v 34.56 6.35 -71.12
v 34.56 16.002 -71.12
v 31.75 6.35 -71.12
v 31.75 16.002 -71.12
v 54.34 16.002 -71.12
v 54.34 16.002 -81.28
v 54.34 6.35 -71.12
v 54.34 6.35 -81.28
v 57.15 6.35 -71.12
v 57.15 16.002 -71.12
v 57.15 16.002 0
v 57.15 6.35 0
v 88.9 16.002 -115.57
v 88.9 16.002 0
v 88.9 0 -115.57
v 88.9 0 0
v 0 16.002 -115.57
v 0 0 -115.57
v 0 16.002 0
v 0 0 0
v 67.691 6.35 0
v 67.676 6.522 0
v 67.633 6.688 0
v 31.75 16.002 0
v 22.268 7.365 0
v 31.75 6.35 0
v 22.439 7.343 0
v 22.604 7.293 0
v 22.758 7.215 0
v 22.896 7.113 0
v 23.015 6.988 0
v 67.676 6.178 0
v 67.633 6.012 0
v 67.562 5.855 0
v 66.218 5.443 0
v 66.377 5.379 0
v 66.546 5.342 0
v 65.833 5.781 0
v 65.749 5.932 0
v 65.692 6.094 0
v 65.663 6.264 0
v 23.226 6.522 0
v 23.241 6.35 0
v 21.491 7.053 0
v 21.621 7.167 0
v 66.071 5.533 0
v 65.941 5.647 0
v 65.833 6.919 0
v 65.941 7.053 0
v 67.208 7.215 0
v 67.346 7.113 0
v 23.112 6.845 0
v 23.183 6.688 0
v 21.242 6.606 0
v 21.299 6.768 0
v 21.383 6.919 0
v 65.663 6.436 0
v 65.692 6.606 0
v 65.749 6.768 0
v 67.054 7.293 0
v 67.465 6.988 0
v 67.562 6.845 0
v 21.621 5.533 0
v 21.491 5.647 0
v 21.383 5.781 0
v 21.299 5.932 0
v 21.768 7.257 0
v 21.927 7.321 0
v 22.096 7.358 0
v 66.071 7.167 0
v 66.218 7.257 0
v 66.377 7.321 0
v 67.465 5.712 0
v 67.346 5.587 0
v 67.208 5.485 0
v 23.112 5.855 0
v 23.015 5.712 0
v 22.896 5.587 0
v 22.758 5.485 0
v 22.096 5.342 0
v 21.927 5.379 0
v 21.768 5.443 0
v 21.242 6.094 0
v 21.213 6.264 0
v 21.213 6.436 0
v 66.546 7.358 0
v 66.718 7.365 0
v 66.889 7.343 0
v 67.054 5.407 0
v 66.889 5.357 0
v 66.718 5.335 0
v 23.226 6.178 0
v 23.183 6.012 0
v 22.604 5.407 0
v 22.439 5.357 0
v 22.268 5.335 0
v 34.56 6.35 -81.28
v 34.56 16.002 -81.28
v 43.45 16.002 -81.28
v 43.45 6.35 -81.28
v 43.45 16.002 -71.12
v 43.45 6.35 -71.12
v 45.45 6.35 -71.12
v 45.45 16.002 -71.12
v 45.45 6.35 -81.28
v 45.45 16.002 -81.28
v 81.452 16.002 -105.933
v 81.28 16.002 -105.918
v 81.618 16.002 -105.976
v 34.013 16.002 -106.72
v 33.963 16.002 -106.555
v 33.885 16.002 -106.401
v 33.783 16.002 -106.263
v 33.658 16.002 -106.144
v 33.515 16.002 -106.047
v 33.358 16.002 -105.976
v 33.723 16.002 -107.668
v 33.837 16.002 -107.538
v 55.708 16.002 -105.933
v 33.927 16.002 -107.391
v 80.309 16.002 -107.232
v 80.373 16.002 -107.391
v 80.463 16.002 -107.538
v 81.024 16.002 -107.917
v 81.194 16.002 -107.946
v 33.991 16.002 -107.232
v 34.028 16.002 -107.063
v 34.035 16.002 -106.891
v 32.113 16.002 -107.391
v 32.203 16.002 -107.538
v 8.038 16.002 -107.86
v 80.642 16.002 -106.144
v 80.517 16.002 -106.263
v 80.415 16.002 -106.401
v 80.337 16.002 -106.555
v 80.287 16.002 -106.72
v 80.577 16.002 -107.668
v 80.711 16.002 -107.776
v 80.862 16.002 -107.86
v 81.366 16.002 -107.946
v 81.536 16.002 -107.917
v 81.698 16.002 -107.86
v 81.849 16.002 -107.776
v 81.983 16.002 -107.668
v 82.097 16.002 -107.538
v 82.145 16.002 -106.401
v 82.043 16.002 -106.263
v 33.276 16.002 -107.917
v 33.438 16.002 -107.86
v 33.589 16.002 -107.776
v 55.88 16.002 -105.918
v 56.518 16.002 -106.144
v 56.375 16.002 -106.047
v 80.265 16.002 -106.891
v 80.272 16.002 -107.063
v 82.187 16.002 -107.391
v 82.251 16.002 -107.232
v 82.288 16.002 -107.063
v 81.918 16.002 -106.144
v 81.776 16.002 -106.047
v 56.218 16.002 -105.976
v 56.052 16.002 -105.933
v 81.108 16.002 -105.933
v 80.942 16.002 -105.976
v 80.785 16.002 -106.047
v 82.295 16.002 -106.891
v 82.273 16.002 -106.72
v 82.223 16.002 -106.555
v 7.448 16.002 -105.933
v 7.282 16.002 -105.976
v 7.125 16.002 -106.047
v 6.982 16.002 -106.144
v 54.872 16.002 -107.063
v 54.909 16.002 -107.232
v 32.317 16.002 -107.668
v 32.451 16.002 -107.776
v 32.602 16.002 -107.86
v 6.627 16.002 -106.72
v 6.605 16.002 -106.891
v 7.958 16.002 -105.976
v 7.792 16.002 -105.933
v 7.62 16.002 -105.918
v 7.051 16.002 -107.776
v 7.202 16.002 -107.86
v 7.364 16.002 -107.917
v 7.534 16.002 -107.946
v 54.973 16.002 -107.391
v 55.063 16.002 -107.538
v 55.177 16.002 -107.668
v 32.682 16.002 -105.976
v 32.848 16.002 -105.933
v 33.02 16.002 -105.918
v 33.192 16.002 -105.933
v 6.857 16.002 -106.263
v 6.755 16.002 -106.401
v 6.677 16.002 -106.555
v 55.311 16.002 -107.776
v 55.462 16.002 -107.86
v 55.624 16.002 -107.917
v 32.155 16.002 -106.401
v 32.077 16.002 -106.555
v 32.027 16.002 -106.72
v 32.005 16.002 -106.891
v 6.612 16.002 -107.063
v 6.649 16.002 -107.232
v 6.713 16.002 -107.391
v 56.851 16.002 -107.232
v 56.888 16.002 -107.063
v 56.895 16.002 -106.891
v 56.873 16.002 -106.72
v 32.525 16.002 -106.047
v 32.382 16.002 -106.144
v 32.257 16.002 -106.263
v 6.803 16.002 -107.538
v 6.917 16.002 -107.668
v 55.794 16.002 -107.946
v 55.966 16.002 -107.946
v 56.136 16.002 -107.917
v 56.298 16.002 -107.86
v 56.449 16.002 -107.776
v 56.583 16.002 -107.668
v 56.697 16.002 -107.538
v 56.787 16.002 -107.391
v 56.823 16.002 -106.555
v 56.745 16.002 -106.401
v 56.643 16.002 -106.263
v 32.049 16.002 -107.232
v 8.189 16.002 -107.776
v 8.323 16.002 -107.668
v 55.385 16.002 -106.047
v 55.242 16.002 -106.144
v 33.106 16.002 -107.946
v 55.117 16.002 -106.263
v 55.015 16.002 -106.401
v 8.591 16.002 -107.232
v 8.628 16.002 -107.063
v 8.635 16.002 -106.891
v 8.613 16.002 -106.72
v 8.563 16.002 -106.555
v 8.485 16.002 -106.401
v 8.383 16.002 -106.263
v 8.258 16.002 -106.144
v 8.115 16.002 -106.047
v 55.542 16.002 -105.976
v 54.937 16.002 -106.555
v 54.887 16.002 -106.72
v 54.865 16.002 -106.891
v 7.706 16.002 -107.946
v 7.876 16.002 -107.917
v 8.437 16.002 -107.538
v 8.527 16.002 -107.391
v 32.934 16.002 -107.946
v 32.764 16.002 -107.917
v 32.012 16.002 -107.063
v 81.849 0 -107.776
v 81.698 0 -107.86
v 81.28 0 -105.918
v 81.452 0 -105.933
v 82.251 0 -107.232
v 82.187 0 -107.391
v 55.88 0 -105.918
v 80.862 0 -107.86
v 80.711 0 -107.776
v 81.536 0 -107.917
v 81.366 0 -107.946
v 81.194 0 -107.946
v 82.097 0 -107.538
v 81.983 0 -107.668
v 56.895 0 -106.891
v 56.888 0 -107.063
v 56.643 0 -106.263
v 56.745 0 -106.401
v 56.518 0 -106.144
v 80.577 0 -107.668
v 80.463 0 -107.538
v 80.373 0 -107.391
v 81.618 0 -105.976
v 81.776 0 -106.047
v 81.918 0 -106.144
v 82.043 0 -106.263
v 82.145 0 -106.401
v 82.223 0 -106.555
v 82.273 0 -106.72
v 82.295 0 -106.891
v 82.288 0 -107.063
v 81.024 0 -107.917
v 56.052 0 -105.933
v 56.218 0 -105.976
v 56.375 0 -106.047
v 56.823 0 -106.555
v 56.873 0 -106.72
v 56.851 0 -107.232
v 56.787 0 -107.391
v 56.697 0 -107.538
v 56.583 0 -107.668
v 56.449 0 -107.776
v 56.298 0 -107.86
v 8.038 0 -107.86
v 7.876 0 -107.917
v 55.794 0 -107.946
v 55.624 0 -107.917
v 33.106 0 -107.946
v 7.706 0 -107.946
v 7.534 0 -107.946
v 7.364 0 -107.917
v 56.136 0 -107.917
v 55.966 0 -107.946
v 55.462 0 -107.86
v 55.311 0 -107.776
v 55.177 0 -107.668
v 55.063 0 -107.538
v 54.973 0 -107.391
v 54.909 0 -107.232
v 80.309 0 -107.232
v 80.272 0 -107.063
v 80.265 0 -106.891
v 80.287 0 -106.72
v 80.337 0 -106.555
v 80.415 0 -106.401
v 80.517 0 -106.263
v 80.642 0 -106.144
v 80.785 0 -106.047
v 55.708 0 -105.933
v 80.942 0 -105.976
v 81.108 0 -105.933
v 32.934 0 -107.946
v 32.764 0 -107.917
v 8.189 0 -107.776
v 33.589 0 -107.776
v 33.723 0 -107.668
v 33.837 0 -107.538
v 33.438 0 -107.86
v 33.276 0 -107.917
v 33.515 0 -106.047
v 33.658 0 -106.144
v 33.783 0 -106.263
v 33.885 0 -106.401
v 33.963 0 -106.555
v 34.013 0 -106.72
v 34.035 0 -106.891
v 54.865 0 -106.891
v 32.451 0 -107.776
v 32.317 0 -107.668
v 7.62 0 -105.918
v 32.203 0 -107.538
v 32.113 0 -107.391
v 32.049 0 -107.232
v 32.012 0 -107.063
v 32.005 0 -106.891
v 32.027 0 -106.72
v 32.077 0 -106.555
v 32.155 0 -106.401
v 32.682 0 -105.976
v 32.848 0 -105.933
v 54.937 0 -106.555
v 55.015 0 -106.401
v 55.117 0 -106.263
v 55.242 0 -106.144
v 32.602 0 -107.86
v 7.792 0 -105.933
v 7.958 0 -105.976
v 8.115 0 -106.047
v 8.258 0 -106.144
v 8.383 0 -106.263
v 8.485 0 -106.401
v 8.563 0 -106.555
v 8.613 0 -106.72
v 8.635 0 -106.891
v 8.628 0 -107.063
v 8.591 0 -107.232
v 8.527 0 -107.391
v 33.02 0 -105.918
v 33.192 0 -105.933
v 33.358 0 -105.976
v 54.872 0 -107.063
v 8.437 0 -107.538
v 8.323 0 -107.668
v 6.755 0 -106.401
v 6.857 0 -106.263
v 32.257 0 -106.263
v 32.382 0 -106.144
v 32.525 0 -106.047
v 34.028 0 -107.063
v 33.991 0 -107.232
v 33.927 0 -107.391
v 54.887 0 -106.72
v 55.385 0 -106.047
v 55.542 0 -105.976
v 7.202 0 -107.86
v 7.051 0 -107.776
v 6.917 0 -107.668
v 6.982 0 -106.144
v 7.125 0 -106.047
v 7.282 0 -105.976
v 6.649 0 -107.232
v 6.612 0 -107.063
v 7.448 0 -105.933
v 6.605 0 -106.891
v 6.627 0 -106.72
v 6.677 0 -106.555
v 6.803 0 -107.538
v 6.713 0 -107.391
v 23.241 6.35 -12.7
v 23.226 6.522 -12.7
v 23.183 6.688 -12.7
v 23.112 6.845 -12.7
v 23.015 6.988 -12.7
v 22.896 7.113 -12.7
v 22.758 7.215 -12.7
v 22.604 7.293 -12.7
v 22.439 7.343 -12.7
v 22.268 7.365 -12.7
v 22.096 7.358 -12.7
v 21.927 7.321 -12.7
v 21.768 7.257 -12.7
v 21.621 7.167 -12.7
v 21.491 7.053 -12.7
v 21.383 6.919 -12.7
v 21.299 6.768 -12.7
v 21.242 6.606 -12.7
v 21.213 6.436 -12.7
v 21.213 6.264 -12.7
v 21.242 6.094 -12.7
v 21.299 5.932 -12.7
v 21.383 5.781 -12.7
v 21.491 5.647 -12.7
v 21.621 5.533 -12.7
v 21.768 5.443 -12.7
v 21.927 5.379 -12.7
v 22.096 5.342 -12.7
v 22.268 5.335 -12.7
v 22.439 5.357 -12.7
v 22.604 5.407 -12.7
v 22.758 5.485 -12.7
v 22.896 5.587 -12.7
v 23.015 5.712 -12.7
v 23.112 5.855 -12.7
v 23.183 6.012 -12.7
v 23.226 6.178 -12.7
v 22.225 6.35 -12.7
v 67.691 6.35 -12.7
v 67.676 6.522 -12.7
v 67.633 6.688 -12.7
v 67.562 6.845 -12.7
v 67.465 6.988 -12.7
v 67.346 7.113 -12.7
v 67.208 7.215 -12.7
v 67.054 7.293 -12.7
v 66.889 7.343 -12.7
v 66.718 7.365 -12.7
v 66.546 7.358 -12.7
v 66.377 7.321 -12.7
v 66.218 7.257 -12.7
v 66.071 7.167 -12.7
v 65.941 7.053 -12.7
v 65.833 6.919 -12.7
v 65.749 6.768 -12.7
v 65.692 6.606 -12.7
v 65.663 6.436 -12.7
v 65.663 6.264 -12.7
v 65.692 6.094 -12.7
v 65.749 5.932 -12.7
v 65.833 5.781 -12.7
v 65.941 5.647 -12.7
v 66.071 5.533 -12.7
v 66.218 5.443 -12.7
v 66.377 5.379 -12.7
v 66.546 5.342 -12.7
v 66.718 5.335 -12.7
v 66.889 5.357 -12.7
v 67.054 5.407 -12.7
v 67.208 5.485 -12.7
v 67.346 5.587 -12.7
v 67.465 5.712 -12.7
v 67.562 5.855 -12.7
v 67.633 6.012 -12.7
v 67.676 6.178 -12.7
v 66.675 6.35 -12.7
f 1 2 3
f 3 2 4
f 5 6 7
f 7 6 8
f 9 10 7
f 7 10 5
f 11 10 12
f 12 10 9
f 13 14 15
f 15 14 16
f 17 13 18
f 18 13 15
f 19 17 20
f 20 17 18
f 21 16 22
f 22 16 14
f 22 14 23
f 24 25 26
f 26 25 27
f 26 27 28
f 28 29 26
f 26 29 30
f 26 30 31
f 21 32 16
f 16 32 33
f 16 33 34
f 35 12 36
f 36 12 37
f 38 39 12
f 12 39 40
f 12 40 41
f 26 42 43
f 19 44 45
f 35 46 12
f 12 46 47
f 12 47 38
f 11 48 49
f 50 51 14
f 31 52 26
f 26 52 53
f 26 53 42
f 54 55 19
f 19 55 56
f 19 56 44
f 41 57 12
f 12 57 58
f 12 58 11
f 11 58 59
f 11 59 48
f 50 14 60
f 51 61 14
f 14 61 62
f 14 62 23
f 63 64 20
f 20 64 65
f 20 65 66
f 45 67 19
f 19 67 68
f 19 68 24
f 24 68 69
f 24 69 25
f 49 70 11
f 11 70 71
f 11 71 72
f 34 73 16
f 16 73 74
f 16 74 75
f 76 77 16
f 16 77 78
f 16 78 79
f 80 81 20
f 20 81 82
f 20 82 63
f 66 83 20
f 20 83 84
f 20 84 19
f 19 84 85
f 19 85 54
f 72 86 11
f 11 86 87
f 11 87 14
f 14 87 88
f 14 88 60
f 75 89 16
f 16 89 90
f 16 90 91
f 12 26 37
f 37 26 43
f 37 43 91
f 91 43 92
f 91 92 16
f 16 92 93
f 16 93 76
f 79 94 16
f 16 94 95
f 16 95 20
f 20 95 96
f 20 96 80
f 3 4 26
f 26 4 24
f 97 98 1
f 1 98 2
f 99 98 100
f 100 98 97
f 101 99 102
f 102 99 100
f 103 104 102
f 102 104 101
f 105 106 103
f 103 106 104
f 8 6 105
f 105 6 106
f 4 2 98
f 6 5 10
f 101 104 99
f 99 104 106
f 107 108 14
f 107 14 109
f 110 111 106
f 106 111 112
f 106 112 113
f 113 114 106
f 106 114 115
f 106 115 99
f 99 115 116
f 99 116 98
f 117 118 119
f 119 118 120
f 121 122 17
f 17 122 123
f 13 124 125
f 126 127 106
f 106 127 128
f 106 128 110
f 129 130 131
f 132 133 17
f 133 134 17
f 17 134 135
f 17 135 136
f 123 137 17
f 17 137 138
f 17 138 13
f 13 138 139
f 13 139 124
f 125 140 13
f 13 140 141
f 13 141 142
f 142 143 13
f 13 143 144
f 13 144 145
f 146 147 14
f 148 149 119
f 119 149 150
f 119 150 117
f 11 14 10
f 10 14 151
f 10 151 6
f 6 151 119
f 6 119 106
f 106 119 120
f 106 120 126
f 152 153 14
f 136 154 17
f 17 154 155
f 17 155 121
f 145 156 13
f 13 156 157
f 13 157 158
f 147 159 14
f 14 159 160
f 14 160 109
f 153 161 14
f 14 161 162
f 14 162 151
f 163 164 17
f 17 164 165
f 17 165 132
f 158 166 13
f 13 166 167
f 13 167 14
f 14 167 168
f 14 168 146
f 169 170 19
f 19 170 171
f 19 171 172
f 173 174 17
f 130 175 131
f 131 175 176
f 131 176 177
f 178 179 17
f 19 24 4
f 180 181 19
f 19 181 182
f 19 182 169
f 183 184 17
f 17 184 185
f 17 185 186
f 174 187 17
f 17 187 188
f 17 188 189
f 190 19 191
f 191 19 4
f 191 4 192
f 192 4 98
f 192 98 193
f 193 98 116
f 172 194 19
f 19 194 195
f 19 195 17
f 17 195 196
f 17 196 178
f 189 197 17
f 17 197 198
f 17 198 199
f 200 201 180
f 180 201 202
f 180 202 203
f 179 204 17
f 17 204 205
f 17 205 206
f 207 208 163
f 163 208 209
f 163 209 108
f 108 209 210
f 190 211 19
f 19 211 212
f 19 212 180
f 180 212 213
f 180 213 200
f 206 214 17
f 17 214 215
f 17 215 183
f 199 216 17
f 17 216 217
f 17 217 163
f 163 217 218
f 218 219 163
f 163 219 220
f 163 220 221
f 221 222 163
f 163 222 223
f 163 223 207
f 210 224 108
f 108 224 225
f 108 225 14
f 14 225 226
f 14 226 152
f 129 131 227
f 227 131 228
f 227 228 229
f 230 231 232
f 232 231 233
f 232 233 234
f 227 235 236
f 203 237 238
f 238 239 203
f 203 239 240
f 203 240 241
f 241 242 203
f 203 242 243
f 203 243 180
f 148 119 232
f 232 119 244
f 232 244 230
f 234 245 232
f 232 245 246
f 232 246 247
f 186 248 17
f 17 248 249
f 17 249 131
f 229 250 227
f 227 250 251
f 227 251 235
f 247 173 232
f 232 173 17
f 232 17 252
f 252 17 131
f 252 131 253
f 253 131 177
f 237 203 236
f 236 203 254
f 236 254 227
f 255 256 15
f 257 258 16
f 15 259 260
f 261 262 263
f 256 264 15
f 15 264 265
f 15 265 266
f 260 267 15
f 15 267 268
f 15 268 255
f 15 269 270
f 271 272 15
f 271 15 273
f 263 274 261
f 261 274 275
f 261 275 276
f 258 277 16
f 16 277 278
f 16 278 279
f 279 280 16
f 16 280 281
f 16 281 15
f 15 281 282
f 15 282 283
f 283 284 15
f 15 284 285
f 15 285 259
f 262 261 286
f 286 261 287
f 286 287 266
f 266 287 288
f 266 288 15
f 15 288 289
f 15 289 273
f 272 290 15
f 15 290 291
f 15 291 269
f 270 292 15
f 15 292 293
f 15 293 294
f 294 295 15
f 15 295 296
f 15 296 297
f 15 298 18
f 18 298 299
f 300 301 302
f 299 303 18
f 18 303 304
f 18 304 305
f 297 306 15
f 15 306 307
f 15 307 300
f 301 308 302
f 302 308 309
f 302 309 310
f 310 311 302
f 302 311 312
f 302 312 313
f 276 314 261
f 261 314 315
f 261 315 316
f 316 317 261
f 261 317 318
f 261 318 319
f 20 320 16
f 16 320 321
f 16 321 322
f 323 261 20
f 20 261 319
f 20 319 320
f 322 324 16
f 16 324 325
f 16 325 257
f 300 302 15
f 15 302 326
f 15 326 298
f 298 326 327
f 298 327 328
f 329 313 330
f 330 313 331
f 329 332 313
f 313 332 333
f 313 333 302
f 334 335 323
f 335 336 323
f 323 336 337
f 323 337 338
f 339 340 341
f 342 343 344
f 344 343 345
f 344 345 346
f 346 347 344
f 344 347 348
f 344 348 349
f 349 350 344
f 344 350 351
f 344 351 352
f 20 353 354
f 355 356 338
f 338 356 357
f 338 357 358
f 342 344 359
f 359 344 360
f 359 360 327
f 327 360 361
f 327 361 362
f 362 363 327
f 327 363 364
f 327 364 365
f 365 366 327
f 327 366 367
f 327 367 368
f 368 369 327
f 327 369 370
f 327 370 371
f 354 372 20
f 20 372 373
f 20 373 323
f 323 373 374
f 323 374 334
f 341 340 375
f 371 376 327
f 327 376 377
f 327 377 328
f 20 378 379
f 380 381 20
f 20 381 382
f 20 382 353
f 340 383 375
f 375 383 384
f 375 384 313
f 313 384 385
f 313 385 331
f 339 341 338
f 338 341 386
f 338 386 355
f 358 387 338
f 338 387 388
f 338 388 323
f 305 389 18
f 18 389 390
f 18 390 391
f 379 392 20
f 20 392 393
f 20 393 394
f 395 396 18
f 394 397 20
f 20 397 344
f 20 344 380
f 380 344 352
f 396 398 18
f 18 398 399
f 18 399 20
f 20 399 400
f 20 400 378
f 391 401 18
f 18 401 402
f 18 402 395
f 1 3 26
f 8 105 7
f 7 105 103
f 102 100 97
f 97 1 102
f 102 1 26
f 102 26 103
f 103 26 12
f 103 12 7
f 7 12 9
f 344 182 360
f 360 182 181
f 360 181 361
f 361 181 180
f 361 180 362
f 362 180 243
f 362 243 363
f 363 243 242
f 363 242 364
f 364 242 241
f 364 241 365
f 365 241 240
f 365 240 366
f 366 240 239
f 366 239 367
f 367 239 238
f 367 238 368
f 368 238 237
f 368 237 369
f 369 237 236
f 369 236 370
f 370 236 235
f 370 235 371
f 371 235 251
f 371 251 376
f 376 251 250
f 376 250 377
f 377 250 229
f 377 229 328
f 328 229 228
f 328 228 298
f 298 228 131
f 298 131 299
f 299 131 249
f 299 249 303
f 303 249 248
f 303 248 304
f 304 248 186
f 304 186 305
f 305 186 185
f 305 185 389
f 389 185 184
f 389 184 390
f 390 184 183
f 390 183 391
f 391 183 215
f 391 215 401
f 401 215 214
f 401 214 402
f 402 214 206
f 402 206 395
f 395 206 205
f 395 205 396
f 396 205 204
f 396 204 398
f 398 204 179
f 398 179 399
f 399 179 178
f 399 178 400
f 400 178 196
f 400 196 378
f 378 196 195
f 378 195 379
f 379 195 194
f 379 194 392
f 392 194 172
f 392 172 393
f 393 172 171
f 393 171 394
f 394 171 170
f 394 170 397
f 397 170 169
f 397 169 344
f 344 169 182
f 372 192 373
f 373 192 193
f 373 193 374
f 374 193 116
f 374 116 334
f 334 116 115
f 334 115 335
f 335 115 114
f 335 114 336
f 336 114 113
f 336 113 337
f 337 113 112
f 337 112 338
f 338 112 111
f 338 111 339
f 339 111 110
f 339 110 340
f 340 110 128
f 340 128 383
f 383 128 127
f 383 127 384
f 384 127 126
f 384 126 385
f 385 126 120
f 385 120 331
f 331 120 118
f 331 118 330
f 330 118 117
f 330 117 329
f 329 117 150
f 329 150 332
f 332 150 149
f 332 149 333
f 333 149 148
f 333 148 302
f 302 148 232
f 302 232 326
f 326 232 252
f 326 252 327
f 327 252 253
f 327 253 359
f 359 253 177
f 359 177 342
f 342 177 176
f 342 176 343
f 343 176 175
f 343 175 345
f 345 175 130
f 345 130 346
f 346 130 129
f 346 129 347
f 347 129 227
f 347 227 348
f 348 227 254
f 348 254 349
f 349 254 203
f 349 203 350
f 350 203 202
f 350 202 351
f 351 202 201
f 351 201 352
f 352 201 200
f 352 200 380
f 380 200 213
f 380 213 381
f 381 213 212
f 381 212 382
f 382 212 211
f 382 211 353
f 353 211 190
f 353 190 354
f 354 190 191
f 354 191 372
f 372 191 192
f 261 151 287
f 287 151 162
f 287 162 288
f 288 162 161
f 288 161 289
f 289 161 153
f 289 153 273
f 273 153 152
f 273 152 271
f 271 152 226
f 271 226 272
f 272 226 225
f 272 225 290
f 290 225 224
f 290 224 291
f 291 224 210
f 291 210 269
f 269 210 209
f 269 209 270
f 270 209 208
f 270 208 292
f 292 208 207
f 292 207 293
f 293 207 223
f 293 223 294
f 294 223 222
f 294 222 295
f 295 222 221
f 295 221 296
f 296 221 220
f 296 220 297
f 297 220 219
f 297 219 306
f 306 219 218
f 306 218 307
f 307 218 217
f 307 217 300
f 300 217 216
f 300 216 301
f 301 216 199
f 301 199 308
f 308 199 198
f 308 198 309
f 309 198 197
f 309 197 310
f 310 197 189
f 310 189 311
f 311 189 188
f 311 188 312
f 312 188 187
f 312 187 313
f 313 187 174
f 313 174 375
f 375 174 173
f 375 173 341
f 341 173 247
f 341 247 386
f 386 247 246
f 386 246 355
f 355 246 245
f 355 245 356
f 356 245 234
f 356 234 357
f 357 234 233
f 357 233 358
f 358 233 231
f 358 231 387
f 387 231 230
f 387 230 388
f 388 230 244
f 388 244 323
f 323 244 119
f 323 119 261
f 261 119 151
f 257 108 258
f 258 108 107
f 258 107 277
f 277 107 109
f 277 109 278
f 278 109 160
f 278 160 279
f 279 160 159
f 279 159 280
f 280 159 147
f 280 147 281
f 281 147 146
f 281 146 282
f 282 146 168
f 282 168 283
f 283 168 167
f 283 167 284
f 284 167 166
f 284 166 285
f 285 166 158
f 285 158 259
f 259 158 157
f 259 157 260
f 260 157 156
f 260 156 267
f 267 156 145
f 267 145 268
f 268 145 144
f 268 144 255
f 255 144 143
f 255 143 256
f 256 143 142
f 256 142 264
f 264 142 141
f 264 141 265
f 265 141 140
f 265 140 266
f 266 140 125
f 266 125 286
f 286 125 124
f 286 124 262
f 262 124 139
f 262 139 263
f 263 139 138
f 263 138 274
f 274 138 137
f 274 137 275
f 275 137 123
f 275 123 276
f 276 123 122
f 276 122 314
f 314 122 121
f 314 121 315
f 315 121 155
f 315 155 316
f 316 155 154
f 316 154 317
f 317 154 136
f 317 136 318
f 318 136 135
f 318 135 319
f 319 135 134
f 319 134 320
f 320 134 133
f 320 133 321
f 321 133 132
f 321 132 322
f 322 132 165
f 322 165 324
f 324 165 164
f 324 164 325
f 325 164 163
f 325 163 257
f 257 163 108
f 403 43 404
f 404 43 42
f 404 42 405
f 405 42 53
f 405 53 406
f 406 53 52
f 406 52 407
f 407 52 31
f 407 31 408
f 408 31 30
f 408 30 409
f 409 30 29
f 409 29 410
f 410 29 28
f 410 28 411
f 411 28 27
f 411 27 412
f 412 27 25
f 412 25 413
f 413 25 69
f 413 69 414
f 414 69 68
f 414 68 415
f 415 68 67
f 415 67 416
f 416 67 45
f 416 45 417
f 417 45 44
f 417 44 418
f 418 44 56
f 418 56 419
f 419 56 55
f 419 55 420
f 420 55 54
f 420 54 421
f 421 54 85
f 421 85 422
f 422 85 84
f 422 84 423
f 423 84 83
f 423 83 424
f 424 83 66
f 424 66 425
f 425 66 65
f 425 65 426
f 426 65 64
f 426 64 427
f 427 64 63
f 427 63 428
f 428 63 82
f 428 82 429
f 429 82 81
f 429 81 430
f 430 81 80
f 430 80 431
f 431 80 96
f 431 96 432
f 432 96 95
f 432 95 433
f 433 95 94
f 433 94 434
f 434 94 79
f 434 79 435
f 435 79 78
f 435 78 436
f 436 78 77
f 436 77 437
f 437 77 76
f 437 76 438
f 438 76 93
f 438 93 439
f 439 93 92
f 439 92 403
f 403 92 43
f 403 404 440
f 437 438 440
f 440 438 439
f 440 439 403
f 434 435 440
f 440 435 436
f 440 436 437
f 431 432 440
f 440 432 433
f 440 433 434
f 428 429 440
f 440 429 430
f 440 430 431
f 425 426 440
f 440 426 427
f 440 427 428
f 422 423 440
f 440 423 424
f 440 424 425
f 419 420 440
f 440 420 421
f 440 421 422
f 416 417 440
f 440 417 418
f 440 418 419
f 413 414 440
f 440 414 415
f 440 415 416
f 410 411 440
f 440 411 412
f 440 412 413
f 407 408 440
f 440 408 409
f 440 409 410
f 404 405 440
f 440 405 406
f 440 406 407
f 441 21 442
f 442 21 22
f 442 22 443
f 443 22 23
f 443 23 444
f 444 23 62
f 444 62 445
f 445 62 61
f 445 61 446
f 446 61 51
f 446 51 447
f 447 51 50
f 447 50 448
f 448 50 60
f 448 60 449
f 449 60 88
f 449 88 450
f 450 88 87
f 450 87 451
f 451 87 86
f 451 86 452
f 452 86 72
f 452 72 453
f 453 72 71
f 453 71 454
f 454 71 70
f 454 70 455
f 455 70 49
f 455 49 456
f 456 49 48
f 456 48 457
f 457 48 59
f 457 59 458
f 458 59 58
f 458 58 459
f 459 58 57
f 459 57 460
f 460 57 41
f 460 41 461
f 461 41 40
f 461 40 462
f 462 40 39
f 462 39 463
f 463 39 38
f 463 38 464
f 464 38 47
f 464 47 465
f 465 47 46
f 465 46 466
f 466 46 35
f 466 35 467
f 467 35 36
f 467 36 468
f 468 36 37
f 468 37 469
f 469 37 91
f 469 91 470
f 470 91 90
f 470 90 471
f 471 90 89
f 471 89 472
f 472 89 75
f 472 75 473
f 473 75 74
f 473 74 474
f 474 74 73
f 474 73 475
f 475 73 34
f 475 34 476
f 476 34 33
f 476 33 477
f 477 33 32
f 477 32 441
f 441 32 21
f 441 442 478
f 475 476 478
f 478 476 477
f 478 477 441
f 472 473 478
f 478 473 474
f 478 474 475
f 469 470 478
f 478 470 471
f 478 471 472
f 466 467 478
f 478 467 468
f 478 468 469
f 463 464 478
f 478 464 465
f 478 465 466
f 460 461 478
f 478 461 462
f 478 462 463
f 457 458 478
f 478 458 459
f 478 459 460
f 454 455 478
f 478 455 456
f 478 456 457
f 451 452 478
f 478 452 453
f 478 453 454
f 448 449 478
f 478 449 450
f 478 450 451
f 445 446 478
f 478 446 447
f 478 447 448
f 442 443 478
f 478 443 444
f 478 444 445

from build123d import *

# Parameters (mm, degrees)
BOSS_EXTRUDE2_DEPTH = 16.002
BOSS_EXTRUDE3_DEPTH = 6.35
SKETCH1_7_W         = 8.89
SKETCH1_7_H         = 10.16
BOSS_EXTRUDE4_DEPTH = 6.35
SKETCH4_R           = 1.016
CUT_EXTRUDE2_DEPTH  = 147.682306036
SKETCH5_R           = 1.016
CUT_EXTRUDE3_DEPTH  = 12.7


with BuildPart() as part:
    # Sketch1 → Boss-Extrude2 (new body)
    with BuildSketch(Plane(origin=(0, 0, 0), x_dir=(1, 0, 0), z_dir=(0, 1, 0))):
        Polygon((0, 115.57), (0, 0), (31.75, 0), (31.75, 71.12), (34.56, 71.12), (34.56, 81.28), (43.45, 81.28), (43.45, 71.12), (45.45, 71.12), (45.45, 81.28), (54.34, 81.28), (54.34, 71.12), (57.15, 71.12), (57.15, 0), (88.9, 0), (88.9, 115.57), align=None)
    extrude(amount=BOSS_EXTRUDE2_DEPTH)



with BuildPart() as body_2:
    # Sketch1<6> → Boss-Extrude3 (new body)
    with BuildSketch(Plane(origin=(0, 0, 0), x_dir=(1, 0, 0), z_dir=(0, 1, 0))):
        Polygon((31.75, 71.12), (31.75, 0), (57.15, 0), (57.15, 71.12), (54.34, 71.12), (45.45, 71.12), (43.45, 71.12), (34.56, 71.12), align=None)
    extrude(amount=BOSS_EXTRUDE3_DEPTH)


with BuildPart() as part_1:
    add(part.part)

    add(body_2.part)  # Boss-Extrude4 merges body 2
    # Sketch1<7> → Boss-Extrude4 (add)
    with BuildSketch(Plane(origin=(0, 0, 0), x_dir=(1, 0, 0), z_dir=(0, 1, 0))):
        with Locations((39.005, 76.2)):
            Rectangle(SKETCH1_7_W, SKETCH1_7_H)
        with Locations((49.895, 76.2)):
            Rectangle(SKETCH1_7_W, SKETCH1_7_H)
    extrude(amount=BOSS_EXTRUDE4_DEPTH)

    # Sketch4 → Cut-Extrude2 (cut, through all)
    with BuildSketch(Plane(origin=(0, 16.002, 0), x_dir=(1, 0, 0), z_dir=(0, 1, 0))):
        with Locations((7.62, 106.934)):
            Circle(SKETCH4_R)
        with Locations((33.02, 106.934)):
            Circle(SKETCH4_R)
        with Locations((55.88, 106.934)):
            Circle(SKETCH4_R)
        with Locations((81.28, 106.934)):
            Circle(SKETCH4_R)
    extrude(amount=-CUT_EXTRUDE2_DEPTH, mode=Mode.SUBTRACT)

    # Sketch5 → Cut-Extrude3 (cut)
    with BuildSketch(Plane.XY):
        with Locations((22.225, 6.35)):
            Circle(SKETCH5_R)
        with Locations((66.675, 6.35)):
            Circle(SKETCH5_R)
    extrude(amount=-CUT_EXTRUDE3_DEPTH, mode=Mode.SUBTRACT)


solid = part_1.part
